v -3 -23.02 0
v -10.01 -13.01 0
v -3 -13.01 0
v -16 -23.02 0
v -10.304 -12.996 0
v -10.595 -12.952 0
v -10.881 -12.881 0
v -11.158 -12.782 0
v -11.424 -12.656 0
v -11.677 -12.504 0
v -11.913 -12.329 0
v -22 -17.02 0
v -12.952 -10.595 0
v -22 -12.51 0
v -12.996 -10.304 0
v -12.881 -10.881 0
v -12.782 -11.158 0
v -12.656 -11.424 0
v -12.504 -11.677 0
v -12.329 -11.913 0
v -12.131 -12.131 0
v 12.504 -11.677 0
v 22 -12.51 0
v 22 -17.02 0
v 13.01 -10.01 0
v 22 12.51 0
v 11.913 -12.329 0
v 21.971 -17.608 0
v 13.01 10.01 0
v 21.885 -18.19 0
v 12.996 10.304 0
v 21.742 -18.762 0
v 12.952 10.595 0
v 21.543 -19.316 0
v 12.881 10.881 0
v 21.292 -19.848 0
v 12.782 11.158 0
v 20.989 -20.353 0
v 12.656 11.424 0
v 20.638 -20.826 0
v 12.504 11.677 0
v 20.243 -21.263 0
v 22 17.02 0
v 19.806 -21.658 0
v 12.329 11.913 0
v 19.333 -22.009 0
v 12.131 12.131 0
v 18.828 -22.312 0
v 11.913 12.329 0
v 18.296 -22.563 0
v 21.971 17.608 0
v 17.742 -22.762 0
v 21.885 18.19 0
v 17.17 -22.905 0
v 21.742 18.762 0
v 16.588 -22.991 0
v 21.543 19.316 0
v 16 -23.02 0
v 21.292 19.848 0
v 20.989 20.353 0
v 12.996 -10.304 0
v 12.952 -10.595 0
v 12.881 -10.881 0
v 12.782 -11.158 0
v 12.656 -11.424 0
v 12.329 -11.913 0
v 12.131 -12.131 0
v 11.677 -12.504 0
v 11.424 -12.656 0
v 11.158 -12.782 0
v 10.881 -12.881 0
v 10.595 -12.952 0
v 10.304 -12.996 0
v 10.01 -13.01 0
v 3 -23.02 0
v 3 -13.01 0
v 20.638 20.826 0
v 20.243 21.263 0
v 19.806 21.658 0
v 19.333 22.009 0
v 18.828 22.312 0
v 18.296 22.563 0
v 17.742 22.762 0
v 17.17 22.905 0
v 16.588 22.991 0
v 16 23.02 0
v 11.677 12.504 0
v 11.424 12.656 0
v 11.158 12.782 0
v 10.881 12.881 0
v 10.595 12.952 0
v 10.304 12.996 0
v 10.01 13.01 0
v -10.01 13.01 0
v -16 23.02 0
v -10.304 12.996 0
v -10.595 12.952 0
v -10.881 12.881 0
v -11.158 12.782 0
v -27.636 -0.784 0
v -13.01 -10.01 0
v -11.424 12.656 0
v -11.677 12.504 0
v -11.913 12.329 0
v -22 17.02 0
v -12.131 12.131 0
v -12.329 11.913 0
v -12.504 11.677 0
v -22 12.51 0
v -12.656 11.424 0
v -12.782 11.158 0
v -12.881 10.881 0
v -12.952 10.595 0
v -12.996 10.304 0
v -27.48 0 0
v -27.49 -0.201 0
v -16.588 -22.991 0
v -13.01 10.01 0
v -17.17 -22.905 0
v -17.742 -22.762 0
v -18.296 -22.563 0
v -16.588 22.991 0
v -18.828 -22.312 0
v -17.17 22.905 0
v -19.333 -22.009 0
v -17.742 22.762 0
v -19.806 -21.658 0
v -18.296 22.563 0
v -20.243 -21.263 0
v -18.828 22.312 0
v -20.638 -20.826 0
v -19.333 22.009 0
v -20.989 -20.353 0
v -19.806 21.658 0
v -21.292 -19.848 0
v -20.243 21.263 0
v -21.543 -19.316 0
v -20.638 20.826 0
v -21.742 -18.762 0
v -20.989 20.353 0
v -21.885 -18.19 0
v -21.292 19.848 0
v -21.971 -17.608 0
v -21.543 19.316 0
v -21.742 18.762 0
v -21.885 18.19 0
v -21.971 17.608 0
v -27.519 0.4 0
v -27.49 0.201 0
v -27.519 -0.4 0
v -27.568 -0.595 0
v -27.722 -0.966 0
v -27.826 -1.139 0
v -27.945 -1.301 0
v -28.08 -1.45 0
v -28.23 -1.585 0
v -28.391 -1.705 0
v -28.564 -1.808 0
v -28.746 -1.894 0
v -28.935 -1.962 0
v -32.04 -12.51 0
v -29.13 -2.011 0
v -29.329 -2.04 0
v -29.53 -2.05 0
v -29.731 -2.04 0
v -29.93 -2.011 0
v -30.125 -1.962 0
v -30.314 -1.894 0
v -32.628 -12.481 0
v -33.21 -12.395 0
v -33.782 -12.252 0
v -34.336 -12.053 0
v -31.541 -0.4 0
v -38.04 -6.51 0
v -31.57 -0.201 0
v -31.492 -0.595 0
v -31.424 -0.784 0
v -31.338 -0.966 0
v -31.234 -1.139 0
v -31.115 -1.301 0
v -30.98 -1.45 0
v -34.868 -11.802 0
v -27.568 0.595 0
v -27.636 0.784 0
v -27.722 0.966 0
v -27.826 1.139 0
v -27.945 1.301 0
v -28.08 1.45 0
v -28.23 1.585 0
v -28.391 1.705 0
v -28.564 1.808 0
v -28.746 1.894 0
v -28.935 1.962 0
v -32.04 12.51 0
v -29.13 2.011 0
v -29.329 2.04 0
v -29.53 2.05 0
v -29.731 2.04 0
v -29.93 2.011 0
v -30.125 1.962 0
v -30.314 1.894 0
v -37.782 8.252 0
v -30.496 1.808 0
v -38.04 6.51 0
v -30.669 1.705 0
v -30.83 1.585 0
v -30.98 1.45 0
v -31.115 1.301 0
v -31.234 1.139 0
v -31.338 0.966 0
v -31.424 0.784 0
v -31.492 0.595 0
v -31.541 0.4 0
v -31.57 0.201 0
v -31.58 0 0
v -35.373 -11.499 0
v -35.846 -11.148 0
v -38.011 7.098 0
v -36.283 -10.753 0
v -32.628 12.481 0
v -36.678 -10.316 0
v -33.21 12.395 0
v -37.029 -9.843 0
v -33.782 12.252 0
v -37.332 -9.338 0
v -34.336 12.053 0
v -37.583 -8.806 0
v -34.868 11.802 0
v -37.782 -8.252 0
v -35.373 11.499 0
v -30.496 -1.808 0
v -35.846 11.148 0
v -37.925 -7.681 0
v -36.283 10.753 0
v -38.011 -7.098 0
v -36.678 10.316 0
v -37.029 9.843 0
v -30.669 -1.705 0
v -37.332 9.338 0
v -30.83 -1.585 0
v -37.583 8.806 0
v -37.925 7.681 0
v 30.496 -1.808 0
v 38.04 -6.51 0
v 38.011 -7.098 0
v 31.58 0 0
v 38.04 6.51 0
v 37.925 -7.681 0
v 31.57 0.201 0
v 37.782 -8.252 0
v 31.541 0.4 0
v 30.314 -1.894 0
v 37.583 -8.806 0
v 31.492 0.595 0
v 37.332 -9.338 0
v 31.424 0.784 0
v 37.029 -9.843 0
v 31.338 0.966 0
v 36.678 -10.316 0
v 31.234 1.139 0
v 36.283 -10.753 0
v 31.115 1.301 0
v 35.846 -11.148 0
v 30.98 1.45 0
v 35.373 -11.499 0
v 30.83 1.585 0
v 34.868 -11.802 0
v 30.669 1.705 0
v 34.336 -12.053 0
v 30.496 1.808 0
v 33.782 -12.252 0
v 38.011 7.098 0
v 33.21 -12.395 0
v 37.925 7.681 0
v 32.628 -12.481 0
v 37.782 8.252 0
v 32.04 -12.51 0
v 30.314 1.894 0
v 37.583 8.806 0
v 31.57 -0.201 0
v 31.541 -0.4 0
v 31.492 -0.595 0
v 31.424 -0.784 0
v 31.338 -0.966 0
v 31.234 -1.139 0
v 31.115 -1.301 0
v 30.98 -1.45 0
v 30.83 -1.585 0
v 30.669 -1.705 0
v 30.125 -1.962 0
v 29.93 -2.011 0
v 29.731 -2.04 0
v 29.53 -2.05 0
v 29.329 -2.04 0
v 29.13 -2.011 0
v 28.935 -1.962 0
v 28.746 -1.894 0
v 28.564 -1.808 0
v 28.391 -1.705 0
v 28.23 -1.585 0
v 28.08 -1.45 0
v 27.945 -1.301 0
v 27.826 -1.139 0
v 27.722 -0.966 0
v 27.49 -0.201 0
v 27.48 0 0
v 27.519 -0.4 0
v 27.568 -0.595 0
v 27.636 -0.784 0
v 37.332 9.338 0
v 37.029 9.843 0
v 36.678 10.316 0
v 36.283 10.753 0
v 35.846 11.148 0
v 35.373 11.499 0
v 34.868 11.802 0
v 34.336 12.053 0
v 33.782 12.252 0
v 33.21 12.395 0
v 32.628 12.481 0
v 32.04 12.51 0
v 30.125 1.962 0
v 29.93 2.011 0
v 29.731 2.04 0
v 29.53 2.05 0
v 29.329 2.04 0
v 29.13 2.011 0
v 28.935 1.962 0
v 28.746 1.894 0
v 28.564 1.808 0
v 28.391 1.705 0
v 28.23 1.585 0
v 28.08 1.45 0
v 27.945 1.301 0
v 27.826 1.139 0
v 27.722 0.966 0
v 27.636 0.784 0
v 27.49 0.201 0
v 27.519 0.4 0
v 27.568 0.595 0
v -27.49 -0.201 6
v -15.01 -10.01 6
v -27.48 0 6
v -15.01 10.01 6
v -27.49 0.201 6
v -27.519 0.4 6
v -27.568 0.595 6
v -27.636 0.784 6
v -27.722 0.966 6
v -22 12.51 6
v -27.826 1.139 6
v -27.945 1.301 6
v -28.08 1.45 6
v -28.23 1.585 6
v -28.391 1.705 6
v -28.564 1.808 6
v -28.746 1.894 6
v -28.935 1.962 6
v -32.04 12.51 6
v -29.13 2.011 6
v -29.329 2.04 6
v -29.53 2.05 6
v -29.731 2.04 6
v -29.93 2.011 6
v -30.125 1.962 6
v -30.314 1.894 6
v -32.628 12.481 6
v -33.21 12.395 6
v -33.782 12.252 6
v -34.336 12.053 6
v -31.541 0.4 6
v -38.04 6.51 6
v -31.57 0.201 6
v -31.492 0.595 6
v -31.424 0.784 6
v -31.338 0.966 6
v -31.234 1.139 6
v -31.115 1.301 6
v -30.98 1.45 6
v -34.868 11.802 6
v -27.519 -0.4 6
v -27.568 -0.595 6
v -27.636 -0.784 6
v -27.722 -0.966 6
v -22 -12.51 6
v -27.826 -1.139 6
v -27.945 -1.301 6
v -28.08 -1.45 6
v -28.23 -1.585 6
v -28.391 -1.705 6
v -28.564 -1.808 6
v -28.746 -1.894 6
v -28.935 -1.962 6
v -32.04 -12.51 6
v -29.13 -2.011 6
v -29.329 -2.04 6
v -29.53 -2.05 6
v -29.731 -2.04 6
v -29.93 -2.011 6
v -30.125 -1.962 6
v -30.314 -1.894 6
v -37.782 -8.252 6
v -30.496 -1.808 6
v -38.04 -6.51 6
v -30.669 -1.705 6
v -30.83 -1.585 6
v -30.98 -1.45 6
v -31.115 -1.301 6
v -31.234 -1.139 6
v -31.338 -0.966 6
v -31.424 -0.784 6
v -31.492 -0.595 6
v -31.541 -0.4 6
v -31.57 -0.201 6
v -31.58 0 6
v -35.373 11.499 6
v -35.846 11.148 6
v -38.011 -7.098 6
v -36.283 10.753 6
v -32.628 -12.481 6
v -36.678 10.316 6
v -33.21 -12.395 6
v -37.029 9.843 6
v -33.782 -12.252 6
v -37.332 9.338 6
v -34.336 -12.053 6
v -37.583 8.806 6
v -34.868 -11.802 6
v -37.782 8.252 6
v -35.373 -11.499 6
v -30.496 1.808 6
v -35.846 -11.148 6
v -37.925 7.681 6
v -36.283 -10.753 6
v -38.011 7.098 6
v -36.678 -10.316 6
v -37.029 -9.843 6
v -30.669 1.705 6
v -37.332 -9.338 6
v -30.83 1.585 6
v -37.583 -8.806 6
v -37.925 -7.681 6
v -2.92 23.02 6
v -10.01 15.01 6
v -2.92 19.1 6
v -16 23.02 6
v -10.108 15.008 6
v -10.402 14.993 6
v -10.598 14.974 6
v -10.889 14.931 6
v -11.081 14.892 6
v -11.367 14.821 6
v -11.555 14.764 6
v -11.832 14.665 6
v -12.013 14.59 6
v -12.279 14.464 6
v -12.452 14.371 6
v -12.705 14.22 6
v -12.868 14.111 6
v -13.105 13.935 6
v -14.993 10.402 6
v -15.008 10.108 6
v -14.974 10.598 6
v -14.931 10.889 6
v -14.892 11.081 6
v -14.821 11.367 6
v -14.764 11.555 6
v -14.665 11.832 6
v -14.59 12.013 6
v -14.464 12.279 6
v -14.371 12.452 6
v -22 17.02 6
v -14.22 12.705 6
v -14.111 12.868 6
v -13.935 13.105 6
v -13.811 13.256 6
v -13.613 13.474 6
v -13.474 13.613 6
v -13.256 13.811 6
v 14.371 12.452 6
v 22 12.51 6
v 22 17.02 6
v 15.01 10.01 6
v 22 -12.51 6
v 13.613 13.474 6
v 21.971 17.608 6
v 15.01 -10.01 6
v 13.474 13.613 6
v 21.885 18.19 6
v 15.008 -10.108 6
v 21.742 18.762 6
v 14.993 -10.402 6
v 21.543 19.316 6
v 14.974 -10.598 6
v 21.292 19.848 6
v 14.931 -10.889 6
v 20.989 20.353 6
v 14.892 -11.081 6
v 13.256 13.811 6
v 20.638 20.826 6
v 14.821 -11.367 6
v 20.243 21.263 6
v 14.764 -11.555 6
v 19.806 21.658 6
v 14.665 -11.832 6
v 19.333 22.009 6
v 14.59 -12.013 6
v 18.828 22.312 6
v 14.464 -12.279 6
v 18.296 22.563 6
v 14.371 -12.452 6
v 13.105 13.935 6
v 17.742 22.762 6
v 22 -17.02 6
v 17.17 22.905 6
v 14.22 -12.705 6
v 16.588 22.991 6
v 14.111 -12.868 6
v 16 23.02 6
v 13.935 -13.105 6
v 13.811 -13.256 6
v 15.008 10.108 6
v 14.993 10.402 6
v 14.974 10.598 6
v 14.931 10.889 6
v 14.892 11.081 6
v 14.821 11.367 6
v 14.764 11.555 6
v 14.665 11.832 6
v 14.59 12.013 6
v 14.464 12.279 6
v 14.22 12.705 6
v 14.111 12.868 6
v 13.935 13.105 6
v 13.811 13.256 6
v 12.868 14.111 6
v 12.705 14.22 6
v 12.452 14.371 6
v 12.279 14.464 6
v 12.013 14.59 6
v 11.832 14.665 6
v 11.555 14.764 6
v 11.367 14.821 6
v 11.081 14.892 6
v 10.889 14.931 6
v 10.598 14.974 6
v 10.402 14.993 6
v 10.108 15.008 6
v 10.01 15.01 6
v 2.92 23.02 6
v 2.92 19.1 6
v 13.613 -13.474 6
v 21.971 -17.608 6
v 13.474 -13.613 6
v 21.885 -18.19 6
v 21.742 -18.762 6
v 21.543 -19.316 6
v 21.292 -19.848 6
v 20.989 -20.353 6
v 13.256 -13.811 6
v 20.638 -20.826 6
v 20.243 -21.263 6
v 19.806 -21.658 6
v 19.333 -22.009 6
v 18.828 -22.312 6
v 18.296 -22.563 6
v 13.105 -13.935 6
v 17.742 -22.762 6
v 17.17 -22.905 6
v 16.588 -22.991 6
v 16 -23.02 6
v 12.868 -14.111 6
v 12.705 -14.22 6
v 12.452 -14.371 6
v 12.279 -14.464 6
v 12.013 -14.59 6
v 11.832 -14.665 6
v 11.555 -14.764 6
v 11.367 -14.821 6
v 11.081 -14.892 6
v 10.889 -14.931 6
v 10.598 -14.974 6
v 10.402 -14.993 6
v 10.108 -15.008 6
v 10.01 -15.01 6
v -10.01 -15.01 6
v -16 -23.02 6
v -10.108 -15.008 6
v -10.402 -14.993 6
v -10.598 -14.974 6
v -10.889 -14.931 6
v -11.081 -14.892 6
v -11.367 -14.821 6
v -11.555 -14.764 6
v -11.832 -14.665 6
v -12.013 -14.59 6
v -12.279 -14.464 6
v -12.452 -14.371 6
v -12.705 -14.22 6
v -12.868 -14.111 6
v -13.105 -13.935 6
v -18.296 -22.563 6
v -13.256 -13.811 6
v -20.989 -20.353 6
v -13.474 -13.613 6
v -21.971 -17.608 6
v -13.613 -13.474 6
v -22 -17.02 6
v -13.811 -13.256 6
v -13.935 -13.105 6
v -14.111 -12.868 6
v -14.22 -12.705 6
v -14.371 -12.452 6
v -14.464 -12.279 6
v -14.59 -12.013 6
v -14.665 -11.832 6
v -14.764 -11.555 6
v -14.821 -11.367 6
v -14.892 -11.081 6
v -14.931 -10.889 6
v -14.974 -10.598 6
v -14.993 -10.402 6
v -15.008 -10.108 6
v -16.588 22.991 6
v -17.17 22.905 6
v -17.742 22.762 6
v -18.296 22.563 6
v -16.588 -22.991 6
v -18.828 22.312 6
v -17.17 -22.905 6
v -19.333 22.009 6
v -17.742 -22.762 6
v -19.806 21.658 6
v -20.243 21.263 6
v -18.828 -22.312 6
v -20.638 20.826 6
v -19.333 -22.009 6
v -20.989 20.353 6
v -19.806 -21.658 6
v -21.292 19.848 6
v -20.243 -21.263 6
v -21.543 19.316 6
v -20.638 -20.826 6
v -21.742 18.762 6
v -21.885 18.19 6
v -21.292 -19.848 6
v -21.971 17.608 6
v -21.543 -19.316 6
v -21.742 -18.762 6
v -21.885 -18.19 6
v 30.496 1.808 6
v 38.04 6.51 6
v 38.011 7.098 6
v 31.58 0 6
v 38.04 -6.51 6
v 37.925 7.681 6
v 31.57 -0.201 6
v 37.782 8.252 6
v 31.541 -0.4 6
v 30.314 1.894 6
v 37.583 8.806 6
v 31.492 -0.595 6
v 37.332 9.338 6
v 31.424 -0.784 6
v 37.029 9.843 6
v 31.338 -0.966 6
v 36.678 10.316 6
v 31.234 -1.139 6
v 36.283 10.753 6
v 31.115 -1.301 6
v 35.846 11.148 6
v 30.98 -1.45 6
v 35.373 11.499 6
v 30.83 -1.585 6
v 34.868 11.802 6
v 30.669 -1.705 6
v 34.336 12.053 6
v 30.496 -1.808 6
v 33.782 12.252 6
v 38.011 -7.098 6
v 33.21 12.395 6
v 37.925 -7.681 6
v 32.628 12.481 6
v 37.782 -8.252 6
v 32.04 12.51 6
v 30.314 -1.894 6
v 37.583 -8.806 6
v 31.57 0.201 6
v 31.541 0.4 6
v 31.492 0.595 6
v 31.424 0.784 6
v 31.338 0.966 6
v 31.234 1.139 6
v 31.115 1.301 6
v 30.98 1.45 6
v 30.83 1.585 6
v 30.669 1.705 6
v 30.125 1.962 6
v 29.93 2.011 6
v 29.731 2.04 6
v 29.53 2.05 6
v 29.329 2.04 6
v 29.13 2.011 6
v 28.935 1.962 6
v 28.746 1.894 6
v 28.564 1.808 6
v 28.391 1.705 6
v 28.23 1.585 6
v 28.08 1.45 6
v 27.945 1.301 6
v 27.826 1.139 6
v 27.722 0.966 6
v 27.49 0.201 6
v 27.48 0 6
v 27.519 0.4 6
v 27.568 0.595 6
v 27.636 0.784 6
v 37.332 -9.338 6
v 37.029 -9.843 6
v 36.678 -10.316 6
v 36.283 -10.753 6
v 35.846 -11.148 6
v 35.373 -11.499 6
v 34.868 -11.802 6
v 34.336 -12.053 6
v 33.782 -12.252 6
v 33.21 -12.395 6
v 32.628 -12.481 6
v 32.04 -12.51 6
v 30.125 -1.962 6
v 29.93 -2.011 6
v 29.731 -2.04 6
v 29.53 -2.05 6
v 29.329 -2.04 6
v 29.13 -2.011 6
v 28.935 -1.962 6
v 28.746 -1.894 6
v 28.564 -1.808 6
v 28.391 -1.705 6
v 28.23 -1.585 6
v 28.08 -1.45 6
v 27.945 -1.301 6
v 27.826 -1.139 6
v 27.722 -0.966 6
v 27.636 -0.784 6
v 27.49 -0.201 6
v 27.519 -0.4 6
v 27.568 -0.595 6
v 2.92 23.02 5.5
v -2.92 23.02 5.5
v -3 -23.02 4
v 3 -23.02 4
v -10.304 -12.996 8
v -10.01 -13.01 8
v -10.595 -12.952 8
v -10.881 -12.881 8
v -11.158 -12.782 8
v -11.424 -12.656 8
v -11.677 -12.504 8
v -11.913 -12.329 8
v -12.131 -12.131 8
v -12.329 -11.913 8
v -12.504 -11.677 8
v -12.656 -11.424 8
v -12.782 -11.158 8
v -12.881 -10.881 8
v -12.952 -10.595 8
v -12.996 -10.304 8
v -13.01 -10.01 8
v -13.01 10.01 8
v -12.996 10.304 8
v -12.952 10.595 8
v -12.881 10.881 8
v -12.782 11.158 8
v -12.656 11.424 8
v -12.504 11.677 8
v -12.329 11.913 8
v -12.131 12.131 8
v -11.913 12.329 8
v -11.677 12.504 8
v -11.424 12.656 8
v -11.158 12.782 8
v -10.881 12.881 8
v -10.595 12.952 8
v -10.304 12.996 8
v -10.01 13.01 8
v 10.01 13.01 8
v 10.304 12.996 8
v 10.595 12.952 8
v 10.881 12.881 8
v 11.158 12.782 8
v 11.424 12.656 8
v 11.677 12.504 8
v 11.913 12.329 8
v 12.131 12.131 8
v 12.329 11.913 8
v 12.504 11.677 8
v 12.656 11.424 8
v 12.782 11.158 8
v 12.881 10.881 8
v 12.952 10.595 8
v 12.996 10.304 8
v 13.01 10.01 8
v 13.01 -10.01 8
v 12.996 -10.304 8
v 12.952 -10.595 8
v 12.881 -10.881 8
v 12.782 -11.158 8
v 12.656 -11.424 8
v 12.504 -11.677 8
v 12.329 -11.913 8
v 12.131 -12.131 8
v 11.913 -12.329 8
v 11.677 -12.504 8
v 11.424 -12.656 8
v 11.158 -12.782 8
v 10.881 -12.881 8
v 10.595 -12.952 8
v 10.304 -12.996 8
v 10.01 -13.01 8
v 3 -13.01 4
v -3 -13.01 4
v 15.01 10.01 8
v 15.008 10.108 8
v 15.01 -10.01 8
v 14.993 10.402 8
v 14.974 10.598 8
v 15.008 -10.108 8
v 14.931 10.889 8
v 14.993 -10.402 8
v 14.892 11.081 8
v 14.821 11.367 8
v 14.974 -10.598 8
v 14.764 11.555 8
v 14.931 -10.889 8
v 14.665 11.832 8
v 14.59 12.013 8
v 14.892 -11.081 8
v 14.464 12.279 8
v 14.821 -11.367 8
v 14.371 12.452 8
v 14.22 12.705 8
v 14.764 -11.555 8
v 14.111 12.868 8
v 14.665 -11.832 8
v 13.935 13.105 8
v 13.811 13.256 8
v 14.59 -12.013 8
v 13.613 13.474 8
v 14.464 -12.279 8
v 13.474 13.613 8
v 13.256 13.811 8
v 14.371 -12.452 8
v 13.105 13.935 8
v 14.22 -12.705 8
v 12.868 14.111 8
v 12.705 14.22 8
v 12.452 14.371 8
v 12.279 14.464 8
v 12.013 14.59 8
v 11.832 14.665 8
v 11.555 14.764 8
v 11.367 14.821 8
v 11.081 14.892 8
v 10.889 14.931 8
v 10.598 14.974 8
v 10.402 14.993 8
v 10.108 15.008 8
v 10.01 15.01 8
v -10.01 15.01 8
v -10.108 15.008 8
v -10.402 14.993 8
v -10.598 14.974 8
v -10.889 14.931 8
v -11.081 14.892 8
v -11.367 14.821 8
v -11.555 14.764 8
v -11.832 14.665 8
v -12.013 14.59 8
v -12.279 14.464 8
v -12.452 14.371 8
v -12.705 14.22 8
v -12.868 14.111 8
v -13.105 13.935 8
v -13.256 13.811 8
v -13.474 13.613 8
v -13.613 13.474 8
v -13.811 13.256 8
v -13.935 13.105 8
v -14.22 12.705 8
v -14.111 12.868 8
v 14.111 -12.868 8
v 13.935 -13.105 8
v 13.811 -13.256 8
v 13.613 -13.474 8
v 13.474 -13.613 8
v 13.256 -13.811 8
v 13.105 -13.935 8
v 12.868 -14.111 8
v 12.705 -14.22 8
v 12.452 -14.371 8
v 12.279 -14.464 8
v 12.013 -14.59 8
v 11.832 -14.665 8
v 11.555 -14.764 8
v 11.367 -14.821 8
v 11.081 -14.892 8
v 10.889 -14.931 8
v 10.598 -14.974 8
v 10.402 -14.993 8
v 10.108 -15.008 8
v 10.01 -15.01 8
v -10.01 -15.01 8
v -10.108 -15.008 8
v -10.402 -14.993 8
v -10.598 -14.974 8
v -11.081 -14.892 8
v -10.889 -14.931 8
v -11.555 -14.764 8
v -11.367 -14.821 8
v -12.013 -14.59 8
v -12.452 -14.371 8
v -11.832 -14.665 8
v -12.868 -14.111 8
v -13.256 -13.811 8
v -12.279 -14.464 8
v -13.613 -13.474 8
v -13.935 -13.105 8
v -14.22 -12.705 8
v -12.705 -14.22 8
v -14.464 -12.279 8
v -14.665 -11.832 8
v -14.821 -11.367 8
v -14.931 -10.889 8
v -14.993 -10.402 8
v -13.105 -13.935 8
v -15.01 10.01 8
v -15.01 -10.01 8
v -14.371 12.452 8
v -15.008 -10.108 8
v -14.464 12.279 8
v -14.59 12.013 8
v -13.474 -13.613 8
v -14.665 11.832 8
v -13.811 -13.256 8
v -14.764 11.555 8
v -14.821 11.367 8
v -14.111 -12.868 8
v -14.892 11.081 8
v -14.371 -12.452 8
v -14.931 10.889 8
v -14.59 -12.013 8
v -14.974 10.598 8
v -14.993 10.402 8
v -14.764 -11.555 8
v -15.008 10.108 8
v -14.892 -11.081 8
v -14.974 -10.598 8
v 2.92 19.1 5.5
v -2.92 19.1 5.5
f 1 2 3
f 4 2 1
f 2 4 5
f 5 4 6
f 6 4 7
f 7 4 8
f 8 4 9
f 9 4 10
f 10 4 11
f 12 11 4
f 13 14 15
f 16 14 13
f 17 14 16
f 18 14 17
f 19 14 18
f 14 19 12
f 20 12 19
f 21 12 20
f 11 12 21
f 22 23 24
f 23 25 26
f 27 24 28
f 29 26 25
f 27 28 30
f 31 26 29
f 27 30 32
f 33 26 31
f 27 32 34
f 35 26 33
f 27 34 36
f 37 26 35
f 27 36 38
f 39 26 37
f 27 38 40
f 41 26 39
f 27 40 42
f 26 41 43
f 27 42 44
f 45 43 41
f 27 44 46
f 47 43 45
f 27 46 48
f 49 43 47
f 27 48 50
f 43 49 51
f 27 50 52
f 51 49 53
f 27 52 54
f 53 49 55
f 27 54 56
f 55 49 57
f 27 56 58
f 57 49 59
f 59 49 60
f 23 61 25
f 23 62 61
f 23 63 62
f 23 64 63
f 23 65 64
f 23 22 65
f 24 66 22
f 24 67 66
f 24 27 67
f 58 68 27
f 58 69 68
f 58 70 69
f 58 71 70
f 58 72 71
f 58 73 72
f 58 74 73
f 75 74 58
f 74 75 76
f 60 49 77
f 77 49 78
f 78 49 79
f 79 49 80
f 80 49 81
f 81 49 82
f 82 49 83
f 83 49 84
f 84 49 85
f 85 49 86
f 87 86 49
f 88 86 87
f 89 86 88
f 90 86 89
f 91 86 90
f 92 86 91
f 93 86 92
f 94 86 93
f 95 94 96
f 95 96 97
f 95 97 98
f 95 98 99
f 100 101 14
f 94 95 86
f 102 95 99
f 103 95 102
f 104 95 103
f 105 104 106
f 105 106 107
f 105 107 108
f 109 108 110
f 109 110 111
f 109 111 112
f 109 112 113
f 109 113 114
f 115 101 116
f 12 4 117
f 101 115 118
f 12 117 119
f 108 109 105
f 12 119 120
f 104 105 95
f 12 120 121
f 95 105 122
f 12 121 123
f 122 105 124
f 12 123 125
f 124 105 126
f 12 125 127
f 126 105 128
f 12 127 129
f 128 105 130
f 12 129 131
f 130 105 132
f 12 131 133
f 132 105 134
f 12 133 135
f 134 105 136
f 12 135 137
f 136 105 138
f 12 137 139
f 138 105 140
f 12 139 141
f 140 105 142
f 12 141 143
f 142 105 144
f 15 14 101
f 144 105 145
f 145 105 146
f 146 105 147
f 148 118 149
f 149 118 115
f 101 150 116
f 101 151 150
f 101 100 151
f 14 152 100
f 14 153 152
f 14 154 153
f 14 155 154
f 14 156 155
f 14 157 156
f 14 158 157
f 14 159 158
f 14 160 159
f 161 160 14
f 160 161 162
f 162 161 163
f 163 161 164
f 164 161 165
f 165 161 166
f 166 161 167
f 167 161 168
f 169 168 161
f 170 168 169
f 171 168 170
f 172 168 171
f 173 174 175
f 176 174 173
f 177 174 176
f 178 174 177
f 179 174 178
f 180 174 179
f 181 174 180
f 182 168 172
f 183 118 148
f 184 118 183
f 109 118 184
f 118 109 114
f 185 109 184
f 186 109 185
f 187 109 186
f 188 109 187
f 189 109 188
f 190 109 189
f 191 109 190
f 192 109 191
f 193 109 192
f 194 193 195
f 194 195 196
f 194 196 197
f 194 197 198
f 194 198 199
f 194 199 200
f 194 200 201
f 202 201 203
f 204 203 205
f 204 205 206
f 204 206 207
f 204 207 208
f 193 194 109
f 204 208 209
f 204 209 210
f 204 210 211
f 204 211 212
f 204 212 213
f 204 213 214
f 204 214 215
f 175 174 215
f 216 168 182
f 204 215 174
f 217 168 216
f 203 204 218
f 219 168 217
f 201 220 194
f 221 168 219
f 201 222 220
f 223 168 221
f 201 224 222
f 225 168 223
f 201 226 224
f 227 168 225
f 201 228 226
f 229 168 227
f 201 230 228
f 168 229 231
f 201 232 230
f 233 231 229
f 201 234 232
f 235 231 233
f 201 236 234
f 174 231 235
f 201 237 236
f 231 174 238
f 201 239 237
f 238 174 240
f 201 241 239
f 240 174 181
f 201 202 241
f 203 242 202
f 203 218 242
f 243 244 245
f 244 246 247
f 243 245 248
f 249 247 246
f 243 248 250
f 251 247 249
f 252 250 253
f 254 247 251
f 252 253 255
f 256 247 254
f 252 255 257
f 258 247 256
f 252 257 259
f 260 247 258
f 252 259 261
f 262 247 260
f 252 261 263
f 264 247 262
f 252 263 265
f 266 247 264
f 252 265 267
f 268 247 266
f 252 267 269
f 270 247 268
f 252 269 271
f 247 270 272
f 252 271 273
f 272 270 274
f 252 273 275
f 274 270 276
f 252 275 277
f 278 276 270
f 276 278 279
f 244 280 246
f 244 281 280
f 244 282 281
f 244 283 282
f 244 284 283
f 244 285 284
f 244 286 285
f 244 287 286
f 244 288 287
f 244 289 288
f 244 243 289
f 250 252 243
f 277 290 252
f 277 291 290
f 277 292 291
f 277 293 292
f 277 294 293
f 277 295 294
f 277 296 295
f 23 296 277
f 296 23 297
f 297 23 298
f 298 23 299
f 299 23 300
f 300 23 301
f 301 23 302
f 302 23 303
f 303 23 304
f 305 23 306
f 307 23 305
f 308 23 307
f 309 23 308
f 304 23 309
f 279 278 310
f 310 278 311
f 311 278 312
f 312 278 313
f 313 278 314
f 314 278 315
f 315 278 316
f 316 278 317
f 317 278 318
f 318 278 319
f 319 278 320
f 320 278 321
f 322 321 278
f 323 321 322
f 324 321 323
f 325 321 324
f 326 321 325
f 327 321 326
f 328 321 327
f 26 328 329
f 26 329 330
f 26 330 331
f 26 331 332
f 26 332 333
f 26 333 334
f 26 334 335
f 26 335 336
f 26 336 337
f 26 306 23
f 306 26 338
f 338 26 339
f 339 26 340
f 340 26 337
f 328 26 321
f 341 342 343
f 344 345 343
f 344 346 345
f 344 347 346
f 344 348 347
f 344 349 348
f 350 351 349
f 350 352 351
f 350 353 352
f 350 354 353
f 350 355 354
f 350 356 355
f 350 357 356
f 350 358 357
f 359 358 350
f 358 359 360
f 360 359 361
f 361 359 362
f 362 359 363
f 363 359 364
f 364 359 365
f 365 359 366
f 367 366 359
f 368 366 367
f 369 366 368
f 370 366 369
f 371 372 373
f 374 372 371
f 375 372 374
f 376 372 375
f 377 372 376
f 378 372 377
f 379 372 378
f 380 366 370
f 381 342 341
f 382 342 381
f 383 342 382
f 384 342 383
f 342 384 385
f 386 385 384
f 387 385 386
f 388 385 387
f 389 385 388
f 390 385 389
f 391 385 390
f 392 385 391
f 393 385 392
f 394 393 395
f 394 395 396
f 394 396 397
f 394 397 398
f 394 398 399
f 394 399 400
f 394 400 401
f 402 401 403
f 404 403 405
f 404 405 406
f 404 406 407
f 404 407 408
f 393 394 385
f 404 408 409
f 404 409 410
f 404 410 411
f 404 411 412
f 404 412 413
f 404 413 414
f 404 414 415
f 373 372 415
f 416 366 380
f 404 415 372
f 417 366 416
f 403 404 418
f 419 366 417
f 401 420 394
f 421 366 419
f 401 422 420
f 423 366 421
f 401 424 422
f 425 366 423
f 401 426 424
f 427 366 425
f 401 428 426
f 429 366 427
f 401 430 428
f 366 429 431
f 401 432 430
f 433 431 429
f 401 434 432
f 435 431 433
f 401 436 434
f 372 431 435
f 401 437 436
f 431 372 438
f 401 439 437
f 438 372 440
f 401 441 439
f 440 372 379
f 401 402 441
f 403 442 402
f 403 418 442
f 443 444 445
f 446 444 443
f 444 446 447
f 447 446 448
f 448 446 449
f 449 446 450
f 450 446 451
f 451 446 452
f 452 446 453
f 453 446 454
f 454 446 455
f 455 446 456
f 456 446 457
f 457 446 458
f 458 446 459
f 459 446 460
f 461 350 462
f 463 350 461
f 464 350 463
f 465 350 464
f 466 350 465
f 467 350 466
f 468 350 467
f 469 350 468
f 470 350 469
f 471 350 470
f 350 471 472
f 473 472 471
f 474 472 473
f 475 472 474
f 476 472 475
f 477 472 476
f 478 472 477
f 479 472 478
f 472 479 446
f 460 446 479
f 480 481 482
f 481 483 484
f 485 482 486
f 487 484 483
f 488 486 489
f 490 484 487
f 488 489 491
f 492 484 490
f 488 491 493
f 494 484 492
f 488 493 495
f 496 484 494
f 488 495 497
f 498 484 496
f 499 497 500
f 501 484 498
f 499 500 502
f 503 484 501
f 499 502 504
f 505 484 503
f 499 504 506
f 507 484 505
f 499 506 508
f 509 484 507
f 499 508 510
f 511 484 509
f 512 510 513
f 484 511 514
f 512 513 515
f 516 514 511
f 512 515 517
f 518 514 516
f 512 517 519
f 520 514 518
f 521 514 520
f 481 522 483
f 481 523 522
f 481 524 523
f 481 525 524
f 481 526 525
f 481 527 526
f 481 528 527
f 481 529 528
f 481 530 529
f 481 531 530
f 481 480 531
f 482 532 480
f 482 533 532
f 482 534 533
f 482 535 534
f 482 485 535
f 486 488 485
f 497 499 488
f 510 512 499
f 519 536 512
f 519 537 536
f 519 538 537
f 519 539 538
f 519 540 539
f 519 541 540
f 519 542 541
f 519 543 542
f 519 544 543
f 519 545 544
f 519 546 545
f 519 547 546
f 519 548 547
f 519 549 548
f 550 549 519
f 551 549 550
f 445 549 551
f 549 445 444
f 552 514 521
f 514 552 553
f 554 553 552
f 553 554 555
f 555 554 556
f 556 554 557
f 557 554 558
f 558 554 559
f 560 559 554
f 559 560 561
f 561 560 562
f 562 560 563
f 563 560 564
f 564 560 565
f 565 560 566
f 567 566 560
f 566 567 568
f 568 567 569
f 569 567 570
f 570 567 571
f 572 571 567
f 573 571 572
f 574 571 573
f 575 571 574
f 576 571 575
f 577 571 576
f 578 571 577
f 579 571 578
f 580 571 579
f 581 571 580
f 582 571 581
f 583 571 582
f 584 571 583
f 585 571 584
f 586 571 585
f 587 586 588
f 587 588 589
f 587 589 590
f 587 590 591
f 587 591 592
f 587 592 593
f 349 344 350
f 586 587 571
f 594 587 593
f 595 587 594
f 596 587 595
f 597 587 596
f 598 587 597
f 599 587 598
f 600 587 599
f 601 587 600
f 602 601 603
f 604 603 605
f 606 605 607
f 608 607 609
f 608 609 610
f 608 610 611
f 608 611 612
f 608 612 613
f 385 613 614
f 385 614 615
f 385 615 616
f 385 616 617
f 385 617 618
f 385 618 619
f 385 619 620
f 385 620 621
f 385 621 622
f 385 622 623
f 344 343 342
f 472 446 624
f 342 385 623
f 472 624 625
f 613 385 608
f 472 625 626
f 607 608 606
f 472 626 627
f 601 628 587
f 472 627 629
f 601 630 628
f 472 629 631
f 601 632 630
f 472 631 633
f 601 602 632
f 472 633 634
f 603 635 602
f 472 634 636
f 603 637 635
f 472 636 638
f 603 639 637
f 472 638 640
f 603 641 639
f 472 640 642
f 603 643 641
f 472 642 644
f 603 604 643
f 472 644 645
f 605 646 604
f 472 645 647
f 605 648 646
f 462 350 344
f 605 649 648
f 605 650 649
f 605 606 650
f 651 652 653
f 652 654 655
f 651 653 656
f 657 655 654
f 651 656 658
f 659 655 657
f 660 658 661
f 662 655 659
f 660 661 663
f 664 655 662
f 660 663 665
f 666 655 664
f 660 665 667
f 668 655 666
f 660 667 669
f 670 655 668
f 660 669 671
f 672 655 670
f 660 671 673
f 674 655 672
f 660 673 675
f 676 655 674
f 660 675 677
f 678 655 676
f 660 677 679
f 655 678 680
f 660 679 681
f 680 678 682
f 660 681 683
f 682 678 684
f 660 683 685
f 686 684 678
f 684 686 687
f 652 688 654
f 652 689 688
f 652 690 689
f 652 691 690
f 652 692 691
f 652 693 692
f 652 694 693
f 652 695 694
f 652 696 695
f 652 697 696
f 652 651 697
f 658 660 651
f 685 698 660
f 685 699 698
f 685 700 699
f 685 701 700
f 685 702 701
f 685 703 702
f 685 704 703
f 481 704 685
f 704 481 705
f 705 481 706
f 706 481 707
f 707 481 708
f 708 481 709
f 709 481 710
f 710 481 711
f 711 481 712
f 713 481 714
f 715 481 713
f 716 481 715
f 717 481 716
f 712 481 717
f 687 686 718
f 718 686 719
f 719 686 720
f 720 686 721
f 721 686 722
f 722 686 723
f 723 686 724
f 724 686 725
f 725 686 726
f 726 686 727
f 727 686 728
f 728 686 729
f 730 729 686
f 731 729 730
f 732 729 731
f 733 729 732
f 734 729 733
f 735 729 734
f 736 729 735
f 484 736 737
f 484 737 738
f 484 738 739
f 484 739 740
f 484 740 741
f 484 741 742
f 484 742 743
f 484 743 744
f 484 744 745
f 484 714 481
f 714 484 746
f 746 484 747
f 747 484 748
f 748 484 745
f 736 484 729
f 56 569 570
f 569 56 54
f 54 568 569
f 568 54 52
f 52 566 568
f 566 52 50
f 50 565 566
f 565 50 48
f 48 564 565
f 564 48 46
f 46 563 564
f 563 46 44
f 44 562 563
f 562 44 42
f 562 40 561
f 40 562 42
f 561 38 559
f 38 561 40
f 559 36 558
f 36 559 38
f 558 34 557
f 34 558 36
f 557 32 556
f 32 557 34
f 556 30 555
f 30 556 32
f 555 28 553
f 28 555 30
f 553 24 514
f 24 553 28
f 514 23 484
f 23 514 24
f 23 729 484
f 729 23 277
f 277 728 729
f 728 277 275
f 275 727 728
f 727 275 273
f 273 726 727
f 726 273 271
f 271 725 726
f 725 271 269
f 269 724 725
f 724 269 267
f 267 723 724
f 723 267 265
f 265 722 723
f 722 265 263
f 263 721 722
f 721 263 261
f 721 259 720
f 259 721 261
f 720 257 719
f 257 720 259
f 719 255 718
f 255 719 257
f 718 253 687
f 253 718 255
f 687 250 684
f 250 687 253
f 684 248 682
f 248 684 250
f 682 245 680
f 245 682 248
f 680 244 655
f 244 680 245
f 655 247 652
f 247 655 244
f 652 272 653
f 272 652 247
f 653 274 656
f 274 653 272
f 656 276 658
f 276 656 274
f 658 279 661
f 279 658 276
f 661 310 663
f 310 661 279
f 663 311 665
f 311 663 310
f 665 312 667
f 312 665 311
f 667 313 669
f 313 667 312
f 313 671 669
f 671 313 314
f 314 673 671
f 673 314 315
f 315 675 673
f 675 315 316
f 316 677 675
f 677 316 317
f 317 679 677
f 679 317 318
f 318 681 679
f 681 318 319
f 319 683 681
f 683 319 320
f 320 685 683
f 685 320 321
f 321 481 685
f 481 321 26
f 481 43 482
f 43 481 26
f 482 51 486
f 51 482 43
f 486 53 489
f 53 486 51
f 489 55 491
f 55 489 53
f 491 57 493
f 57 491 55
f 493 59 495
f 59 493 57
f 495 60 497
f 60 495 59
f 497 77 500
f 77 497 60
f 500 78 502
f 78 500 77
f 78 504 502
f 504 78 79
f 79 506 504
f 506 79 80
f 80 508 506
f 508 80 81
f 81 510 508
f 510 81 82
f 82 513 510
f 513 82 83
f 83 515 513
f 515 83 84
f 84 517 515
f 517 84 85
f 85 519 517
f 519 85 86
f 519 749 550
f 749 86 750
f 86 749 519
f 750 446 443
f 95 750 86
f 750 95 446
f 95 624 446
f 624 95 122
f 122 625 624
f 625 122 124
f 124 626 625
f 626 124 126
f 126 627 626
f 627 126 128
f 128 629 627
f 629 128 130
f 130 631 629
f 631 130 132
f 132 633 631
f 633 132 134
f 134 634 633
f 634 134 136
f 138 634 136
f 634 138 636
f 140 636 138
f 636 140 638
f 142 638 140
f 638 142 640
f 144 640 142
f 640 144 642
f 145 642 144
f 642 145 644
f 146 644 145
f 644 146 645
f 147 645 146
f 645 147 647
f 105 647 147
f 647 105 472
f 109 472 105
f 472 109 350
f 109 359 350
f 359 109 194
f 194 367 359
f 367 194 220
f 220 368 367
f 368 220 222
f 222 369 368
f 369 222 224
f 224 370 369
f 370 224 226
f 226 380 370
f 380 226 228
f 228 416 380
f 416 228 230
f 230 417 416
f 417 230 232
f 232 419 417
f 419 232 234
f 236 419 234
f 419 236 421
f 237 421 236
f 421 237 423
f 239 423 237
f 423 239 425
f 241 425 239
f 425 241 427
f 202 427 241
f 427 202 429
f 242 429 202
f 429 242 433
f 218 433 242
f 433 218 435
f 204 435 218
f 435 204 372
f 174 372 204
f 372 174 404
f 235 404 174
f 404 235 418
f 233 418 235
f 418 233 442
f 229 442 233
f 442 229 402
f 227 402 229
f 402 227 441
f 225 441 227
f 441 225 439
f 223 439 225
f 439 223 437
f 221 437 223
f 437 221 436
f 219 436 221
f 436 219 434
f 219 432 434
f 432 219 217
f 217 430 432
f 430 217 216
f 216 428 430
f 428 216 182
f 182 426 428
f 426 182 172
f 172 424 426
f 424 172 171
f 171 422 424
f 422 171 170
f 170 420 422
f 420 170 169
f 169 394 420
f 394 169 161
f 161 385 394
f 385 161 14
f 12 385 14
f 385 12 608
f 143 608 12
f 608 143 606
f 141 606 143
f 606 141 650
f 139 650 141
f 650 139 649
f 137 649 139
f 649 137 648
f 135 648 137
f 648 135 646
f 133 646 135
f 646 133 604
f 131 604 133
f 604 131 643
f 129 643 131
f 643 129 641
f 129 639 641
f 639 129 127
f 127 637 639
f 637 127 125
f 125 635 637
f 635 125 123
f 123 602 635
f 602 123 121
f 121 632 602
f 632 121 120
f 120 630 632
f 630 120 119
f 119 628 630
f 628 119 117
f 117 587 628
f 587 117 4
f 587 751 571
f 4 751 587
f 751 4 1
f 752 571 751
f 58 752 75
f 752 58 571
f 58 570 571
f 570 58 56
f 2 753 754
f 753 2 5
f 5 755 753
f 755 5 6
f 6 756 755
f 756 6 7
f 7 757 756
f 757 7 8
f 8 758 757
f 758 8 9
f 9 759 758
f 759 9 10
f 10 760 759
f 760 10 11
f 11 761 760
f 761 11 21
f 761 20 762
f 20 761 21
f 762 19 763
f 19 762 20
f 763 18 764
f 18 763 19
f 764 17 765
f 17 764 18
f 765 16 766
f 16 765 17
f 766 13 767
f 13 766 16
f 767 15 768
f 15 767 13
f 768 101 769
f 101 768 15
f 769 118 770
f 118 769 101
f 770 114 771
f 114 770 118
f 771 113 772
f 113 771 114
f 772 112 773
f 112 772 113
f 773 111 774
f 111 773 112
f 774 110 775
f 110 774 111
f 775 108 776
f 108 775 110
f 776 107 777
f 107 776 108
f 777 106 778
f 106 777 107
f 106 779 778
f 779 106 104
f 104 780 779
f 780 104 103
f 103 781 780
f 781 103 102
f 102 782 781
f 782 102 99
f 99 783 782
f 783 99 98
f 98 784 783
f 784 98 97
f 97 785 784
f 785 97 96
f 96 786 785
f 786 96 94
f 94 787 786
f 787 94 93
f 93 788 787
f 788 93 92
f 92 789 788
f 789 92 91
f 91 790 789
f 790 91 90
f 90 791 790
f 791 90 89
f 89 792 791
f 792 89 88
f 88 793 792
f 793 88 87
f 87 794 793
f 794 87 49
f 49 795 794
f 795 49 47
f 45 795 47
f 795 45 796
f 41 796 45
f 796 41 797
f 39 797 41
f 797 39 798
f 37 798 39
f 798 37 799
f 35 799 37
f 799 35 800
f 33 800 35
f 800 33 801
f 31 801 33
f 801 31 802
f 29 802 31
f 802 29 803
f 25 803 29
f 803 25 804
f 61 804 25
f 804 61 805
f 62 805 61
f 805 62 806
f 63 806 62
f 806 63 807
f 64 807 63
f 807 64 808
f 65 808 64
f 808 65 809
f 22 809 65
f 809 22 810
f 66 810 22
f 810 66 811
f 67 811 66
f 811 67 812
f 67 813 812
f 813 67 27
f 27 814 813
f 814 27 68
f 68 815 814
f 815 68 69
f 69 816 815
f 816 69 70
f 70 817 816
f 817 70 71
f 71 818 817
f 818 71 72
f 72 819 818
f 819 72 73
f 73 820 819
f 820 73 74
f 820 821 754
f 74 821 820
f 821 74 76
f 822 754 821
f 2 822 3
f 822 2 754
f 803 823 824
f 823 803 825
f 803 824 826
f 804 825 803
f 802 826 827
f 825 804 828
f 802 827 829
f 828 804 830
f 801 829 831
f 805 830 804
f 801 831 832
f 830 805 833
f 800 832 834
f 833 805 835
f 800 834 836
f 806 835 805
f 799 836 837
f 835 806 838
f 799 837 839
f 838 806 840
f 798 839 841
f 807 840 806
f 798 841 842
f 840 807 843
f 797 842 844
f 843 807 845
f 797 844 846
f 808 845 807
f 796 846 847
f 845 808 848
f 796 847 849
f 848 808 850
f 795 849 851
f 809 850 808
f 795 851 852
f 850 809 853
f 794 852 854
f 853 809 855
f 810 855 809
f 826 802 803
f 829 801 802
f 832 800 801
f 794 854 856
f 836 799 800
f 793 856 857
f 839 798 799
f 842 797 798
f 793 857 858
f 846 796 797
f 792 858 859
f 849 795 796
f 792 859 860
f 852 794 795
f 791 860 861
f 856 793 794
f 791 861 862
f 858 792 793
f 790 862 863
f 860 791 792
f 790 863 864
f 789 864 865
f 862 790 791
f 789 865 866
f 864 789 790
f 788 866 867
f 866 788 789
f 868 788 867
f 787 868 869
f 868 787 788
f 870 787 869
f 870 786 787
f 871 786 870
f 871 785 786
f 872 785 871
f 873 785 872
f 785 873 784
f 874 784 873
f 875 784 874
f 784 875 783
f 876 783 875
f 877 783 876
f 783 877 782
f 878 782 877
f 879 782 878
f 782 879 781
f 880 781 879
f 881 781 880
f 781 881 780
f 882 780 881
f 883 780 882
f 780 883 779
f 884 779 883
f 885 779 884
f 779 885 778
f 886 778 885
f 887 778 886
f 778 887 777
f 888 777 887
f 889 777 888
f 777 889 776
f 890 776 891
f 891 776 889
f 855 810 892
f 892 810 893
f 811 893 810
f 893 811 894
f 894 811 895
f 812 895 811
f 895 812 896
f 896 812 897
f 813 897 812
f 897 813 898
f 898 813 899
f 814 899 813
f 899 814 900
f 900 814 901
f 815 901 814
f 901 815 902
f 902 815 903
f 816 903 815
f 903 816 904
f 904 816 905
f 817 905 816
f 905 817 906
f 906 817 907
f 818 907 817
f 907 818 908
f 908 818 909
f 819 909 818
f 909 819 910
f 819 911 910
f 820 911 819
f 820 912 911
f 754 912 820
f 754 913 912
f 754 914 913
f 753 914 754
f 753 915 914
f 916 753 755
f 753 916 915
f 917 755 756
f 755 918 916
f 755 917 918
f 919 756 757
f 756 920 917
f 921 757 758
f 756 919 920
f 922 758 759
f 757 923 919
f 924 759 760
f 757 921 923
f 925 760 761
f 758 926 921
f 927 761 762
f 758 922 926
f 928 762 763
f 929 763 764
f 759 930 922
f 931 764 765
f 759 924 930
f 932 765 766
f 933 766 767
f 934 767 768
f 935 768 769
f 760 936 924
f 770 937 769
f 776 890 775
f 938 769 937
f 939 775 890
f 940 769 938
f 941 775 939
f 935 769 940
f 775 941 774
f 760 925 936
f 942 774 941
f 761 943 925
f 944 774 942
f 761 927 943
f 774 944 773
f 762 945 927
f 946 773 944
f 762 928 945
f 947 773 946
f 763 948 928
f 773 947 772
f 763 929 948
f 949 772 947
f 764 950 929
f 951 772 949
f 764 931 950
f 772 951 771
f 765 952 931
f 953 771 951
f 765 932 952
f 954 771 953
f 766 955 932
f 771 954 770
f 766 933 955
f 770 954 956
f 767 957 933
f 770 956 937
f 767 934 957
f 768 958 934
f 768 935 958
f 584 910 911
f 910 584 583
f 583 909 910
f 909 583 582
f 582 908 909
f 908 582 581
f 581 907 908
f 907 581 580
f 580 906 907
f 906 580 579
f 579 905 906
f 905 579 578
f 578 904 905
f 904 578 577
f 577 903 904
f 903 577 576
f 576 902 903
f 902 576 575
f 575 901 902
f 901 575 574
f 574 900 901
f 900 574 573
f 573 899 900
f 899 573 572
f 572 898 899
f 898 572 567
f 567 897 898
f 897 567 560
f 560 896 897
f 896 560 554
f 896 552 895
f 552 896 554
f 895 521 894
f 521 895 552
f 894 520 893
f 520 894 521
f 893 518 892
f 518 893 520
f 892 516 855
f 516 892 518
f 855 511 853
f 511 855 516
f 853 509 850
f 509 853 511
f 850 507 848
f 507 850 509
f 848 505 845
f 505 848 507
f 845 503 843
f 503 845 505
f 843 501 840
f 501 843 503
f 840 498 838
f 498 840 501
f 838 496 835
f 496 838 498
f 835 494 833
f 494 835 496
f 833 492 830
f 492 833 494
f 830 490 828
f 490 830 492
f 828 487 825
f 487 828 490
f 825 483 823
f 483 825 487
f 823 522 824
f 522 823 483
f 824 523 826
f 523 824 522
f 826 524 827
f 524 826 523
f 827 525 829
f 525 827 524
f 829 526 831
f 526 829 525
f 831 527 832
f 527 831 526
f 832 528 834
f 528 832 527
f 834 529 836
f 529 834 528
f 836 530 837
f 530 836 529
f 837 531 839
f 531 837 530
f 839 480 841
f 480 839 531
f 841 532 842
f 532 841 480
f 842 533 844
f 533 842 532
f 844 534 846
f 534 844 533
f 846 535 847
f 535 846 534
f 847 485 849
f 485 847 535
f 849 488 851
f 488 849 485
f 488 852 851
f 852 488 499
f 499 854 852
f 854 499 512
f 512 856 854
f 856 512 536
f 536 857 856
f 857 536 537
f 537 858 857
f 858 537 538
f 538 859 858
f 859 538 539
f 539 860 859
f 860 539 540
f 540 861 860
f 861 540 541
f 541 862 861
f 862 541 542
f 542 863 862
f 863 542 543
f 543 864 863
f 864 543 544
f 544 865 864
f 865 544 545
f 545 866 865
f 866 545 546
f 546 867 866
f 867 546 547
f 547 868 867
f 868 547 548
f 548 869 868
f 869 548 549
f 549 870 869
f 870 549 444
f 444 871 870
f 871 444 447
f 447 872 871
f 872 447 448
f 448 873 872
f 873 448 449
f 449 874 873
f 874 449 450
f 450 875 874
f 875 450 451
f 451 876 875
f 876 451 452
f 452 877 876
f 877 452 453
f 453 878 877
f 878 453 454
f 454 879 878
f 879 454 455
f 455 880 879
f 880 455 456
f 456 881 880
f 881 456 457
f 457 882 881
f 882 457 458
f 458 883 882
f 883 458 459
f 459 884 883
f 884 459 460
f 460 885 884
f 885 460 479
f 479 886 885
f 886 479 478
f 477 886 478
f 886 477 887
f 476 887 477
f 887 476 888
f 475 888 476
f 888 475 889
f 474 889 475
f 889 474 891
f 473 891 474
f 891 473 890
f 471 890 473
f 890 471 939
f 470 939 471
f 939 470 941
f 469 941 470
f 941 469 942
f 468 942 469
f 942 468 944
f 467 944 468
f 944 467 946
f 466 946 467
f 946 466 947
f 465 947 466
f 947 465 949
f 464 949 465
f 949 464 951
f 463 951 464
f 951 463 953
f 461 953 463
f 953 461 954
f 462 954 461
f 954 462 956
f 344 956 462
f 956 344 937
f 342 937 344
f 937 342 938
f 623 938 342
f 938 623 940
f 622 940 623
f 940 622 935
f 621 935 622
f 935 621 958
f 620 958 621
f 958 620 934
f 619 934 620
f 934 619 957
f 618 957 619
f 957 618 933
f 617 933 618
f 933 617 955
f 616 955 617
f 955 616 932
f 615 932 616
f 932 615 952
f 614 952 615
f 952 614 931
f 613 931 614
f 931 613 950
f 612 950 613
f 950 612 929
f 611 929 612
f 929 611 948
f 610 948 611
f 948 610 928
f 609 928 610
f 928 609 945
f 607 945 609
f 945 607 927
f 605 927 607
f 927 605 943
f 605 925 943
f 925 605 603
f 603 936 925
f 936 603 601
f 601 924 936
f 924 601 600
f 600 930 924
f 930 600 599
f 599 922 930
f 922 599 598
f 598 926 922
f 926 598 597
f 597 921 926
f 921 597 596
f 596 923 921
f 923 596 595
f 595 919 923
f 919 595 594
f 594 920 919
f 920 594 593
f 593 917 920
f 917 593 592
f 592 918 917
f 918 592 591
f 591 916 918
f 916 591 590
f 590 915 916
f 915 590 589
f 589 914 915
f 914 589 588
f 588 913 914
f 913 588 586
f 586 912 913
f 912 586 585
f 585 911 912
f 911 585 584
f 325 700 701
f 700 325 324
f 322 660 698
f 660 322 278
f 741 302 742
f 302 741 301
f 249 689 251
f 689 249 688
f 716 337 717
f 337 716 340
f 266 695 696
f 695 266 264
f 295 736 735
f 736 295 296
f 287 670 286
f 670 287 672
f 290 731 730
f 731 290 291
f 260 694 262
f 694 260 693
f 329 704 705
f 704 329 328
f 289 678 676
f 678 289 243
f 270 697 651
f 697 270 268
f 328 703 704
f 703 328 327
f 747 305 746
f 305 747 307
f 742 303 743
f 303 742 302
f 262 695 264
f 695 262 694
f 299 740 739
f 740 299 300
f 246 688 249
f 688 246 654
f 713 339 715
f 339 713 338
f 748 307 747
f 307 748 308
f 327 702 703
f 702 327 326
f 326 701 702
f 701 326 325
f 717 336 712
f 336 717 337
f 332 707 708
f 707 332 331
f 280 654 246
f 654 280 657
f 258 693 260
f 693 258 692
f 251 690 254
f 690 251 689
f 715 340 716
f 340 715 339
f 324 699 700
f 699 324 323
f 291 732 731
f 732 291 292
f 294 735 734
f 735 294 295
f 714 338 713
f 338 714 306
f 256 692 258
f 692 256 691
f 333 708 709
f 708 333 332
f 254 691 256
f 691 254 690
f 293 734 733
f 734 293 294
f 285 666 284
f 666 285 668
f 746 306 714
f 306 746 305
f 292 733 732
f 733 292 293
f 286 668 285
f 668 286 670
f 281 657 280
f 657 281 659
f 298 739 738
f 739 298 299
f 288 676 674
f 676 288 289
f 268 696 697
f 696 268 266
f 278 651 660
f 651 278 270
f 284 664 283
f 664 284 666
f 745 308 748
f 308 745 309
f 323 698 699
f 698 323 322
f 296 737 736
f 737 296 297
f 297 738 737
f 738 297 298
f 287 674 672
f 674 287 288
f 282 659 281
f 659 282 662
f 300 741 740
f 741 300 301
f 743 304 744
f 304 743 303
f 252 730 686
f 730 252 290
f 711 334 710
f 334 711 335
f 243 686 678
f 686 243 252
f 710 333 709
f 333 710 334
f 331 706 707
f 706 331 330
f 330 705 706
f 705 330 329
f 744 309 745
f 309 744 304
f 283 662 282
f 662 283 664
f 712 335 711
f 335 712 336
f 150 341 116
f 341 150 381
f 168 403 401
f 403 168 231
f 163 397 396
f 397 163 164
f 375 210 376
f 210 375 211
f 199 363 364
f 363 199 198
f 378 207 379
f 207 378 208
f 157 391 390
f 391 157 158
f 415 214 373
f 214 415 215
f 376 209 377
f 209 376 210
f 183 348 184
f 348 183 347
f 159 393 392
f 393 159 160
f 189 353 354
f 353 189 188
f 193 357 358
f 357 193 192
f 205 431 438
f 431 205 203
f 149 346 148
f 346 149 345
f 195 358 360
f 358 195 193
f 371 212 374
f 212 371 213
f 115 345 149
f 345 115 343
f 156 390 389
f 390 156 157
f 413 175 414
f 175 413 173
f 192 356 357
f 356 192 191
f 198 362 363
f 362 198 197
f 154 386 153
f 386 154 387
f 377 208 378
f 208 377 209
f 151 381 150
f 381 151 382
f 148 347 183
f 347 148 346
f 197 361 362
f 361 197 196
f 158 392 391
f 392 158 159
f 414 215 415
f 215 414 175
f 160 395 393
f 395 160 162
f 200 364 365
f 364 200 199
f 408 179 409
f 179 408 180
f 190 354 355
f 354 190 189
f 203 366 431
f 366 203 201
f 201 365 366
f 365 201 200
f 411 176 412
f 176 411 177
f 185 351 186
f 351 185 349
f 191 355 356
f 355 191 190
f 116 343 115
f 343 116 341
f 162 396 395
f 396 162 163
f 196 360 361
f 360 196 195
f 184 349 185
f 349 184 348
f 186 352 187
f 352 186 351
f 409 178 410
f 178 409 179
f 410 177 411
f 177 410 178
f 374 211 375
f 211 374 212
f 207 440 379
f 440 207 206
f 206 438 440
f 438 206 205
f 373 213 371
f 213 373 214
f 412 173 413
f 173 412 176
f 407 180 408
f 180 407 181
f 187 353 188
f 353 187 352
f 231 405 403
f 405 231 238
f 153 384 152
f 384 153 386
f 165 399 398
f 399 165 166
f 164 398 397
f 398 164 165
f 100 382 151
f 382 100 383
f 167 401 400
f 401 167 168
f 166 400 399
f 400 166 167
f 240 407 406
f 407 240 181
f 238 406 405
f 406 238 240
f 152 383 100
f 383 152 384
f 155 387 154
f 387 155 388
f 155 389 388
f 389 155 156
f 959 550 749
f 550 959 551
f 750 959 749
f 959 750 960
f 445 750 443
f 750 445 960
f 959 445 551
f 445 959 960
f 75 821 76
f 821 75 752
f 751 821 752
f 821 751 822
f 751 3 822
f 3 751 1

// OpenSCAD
// Load cell holder - derived from a third-party Printables design
// (https://www.printables.com/model/157473-load-cell-holder), reverse
// measured from the downloaded STL rather than guessed - see the
// measurement commands in project history / commit message for how each
// number below was extracted (2D cross-section slices + point-cloud
// analysis of the actual mesh, not eyeballed).
//
// This is a FAITHFUL FUNCTIONAL recreation (same envelope, hole
// positions/sizes, pocket opening, general thickness) expressed as
// editable OpenSCAD instead of an opaque STL, matching how the rest of
// this project's parts are built (case.scad, generate_pcb.py). It is
// NOT a byte-identical mesh clone - fine fillet/lip details are
// approximated. Validate print fit against the original STL
// (keg-platform/load_cell_holder_reference.stl) before relying on this
// for a real build.
//
// Snap-fit bracket: two outer ears bolt down to a base plate: the load
// cell itself snaps into the central pocket, gripped by the raised lip
// around it and able to flex slightly thanks to the seam slit at the
// pocket's top edge.

// ---- measured dimensions -------------------------------------------
ear_thickness = 6.0;       // ear tab thickness (measured: ~5.9-6.0mm)
lip_height = 2.0;          // raised pocket lip, on top of ear_thickness
                            // (total part height measured as 8.01mm)

collar_half_w = 22.0;      // central collar half-width (x)
collar_half_h = 23.02;     // central collar half-height (y) - measured
collar_corner_r = 6.0;     // approximate corner rounding

ear_half_h = 12.51;        // ear tab half-height (y) - measured
ear_outer_x = 38.04;       // ear tip x-extent (half of 76.08mm total)
ear_corner_r = 6.0;        // approximate ear end rounding

bolt_hole_x = 29.53;       // bolt hole x position - measured
bolt_hole_r = 2.05;        // bolt hole radius - measured (~M4 clearance)

pocket_half = 13.01;       // pocket opening half-width/height (26.03mm
                            // square) - measured
pocket_corner_r = 3.0;     // approximate pocket corner rounding

seam_half_w = 2.92;        // split-seam slit half-width - measured
seam_y0 = 19.1;            // seam starts at this y (measured) ...
seam_y1 = collar_half_h + 1;  // ... through the outer edge

// ---- added feature: cable exit notch (not present in the original) --
// The original design has NO cable exit - confirmed directly (2D
// cross-section + top-down height projection), not assumed: the pocket
// is fully enclosed on all 4 sides, and the flex-seam slit above does
// not reach the pocket opening (there's solid material between them).
// Without this, a cable coming off the load cell would have to share
// the same ~26x26mm pocket opening as the load cell body itself.
// Placed on the -Y side (opposite the seam slit at +Y) so the two
// features stay clearly separated. Half the part's total height, at the
// bottom (z=0 up), not full height - leaves solid material above it as
// a roof over the cable exit.
cable_notch_half_w = 3.0;  // 6mm wide - fits a small multi-conductor cable
cable_notch_y0 = -pocket_half + 1;   // starts just inside the pocket edge
cable_notch_y1 = -collar_half_h - 1; // ... through the outer collar edge
cable_notch_height = (ear_thickness + lip_height) / 2;  // half of 8mm = 4mm

$fn = 64;

module rounded_rect(w, h, r) {
    offset(r = r)
        offset(delta = -r)
            square([w, h], center = true);
}

module outline_2d() {
    // Ear tabs overlap deep into the collar (starting well inside its
    // half-width, not right at the edge) so their rounded corners land
    // entirely within the collar's solid area instead of both shapes'
    // roundings landing at the same seam and leaving a gap there - first
    // version of this had exactly that bug, caught by rendering and
    // comparing against the original rather than trusting it blind.
    ear_inner_x = collar_half_w * 0.4;
    union() {
        rounded_rect(collar_half_w * 2, collar_half_h * 2, collar_corner_r);
        translate([(ear_inner_x + ear_outer_x) / 2, 0])
            rounded_rect(ear_outer_x - ear_inner_x, ear_half_h * 2, ear_corner_r);
        translate([-(ear_inner_x + ear_outer_x) / 2, 0])
            rounded_rect(ear_outer_x - ear_inner_x, ear_half_h * 2, ear_corner_r);
    }
}

module pocket_2d() {
    rounded_rect(pocket_half * 2, pocket_half * 2, pocket_corner_r);
}

module holder() {
    difference() {
        union() {
            // base body (ears + collar), to ear_thickness
            linear_extrude(height = ear_thickness)
                difference() {
                    outline_2d();
                    pocket_2d();
                }
            // raised lip around the pocket, on top of the base body
            translate([0, 0, ear_thickness])
                linear_extrude(height = lip_height)
                    difference() {
                        offset(r = 2) pocket_2d();  // lip wall ~2mm thick
                        pocket_2d();
                    }
        }
        // bolt holes, through everything
        translate([bolt_hole_x, 0, -1])
            cylinder(r = bolt_hole_r, h = ear_thickness + 2);
        translate([-bolt_hole_x, 0, -1])
            cylinder(r = bolt_hole_r, h = ear_thickness + 2);
        // split-seam flex slit, through the lip at the pocket's top edge
        translate([-seam_half_w, seam_y0, ear_thickness - 0.5])
            cube([seam_half_w * 2, seam_y1 - seam_y0, lip_height + 1]);
        // cable exit notch (added - see comment above), half height, at
        // the bottom (z=-1 for a clean cut through the bottom face, up
        // to cable_notch_height above z=0)
        translate([-cable_notch_half_w, cable_notch_y1, -1])
            cube([cable_notch_half_w * 2, cable_notch_y0 - cable_notch_y1,
                  cable_notch_height + 1]);
    }
}

holder();
